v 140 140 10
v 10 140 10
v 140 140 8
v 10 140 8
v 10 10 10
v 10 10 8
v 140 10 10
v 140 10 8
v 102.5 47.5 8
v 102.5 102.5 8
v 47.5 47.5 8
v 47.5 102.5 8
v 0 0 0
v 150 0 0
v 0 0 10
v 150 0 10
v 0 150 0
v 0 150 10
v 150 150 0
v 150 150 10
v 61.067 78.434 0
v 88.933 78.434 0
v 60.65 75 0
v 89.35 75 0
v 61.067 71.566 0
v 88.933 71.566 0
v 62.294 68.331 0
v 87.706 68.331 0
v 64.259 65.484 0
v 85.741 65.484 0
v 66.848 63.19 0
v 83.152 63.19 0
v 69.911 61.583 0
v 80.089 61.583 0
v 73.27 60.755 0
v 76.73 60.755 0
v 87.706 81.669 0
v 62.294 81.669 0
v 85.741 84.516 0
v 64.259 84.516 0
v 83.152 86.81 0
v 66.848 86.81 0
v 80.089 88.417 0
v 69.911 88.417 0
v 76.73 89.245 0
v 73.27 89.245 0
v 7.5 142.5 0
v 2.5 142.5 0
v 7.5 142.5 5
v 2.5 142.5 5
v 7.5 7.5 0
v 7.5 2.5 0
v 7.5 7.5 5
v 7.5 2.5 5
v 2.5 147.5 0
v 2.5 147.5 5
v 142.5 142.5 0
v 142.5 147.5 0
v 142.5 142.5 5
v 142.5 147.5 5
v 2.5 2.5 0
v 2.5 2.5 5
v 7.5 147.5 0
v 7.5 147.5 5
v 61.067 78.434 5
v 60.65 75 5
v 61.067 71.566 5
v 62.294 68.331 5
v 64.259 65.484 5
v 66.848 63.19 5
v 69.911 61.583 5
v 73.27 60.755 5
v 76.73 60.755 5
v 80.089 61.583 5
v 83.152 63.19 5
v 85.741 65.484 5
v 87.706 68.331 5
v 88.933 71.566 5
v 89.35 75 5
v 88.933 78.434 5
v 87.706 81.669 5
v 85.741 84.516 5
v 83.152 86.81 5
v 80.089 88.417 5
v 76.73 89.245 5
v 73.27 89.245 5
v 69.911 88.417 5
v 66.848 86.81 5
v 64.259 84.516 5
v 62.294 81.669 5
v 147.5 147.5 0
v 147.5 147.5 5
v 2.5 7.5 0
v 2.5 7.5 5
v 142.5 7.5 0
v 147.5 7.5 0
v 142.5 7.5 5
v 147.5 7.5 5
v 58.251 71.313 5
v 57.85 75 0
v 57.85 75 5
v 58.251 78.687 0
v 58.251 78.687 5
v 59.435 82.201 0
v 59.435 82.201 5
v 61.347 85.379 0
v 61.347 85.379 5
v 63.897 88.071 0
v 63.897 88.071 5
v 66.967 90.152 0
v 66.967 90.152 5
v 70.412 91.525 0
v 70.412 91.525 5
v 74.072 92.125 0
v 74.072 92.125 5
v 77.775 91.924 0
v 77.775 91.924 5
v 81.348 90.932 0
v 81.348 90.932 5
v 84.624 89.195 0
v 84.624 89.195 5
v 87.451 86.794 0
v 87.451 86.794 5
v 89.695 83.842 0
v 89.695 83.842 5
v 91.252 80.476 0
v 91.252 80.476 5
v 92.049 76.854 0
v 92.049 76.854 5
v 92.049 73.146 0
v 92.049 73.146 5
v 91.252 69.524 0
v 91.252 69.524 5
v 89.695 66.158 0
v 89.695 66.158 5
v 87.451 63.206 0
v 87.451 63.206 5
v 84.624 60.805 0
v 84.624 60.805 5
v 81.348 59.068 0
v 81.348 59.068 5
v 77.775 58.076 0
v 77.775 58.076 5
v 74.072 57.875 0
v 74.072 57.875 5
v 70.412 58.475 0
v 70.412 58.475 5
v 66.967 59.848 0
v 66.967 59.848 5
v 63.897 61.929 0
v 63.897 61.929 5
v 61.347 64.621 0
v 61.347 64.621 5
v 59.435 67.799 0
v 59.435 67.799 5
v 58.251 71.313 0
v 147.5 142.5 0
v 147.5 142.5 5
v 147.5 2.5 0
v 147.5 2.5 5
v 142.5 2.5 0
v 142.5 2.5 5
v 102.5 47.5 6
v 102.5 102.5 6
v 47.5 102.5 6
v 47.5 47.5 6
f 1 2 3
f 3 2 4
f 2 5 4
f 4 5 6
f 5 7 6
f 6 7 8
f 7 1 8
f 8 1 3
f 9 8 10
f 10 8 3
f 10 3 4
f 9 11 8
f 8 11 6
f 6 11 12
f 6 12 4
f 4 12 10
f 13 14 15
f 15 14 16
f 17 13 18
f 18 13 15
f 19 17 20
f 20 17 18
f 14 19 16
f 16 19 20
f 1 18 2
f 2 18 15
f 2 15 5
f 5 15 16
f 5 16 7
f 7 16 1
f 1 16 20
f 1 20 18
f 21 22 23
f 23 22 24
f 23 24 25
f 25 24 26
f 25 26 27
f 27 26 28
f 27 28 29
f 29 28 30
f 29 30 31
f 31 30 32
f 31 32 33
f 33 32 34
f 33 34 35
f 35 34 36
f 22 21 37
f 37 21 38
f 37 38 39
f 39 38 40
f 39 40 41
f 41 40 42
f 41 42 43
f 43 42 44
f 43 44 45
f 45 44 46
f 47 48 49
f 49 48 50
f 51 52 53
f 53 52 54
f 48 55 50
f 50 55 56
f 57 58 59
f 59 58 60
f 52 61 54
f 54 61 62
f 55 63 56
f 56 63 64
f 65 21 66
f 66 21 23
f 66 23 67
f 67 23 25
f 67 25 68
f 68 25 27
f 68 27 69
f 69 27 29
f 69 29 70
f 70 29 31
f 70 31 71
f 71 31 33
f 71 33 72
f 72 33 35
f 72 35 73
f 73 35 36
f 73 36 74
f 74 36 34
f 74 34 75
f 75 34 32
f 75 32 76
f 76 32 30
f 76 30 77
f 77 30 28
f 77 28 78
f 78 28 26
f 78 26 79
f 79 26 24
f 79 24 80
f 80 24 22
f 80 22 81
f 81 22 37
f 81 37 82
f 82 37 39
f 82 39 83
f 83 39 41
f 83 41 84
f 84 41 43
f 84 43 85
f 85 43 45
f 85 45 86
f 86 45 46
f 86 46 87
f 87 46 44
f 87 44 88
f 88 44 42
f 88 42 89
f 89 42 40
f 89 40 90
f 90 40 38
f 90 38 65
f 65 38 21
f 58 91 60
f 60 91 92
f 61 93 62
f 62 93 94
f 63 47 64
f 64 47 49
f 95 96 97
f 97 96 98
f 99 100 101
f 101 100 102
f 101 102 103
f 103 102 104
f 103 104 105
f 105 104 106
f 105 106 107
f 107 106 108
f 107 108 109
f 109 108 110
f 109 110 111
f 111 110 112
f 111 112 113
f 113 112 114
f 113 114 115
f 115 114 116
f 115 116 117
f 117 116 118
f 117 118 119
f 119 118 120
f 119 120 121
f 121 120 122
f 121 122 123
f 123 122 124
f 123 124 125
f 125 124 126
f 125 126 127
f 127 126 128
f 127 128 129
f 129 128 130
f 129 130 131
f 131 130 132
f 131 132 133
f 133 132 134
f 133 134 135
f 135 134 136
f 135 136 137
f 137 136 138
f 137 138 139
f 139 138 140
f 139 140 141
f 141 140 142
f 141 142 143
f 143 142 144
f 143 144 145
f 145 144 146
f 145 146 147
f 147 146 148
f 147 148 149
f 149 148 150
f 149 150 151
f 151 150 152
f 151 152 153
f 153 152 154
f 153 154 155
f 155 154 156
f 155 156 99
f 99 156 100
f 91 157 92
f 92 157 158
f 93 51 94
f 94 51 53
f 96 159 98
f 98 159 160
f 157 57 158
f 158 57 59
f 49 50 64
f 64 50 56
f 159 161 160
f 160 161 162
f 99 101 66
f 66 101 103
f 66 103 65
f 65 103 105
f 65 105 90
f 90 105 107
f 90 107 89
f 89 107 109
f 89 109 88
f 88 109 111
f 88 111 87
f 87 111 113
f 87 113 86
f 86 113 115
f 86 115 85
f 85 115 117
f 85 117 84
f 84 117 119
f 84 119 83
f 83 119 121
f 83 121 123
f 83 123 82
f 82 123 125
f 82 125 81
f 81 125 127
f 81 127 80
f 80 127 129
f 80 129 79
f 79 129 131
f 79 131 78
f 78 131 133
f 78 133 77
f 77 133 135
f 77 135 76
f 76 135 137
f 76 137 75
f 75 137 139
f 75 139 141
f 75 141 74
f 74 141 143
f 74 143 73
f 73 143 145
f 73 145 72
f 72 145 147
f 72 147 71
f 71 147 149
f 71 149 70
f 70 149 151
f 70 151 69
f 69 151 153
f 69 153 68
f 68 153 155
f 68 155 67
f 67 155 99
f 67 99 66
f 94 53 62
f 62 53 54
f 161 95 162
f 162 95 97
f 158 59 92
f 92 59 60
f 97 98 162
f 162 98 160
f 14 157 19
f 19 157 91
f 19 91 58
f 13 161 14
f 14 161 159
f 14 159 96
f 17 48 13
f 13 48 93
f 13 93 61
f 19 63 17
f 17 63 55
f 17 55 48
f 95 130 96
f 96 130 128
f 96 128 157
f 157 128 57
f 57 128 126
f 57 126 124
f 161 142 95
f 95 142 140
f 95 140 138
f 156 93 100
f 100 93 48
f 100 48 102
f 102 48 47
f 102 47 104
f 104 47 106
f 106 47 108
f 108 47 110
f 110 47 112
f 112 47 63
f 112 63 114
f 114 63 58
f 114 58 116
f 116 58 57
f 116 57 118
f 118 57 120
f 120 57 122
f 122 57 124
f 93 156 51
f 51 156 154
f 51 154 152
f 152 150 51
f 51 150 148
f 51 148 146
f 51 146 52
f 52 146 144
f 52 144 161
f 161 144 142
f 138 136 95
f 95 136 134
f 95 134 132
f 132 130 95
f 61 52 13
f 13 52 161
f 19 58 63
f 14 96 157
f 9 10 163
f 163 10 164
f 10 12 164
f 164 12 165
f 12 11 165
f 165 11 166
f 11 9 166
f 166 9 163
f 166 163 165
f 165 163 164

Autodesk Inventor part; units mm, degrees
ref_plane "YZ Plane" through (0, 0, 0) normal (1, 0, 0) x (0, 1, 0)
ref_plane "XZ Plane" through (0, 0, 0) normal (0, 1, 0) x (-1, 0, 0)
ref_plane "XY Plane" through (0, 0, 0) normal (0, 0, 1) x (1, 0, 0)
sketch "Sketch4" plane through (0, 0, 0) normal (0, 0, 1) x (1, 0, 0)
  line L0 (0, 0) -> (150, 0)
  line L1 (150, 0) -> (150, 150)
  line L2 (150, 150) -> (0, 150)
  line L3 (0, 150) -> (0, 0)
  dimension "d34" = 150
  dimension "d35" = 150
extrude "Extrusion4" add sketch "Sketch4" along normal blind 10
sketch "Sketch5" plane through (0, 0, 10) normal (0, 0, 1) x (1, 0, 0)
  line L0 (10, 10) -> (140, 10)
  line L1 (140, 10) -> (140, 140)
  line L2 (140, 140) -> (10, 140)
  line L3 (10, 140) -> (10, 10)
  point P0 (0, 0)
  dimension "d38" = 130
  dimension "d39" = 130
extrude "Extrusion5" cut sketch "Sketch5" against normal blind 2
sketch "Sketch6" plane through (0, 0, 0) normal (0, 0, -1) x (-1, 0, 0)
  circle A0 centre (-75, 75) radius 14.35
  circle A1 centre (-75, 75) radius 17.15
  line L0 (-147.5, 2.5) -> (-142.5, 2.5)
  line L1 (-142.5, 2.5) -> (-142.5, 7.5)
  line L2 (-142.5, 7.5) -> (-147.5, 7.5)
  line L3 (-147.5, 7.5) -> (-147.5, 2.5)
  line L4 (-2.5, 2.5) -> (-7.5, 2.5)
  line L5 (-7.5, 2.5) -> (-7.5, 7.5)
  line L6 (-7.5, 7.5) -> (-2.5, 7.5)
  line L7 (-2.5, 7.5) -> (-2.5, 2.5)
  line L8 (-147.5, 147.5) -> (-142.5, 147.5)
  line L9 (-142.5, 147.5) -> (-142.5, 142.5)
  line L10 (-142.5, 142.5) -> (-147.5, 142.5)
  line L11 (-147.5, 142.5) -> (-147.5, 147.5)
  line L12 (-2.5, 147.5) -> (-7.5, 147.5)
  line L13 (-7.5, 147.5) -> (-7.5, 142.5)
  line L14 (-7.5, 142.5) -> (-2.5, 142.5)
  line L15 (-2.5, 142.5) -> (-2.5, 147.5)
  point P0 (0, 0)
  dimension "d42" = 28.7
  dimension "d43" = 34.3
  dimension "d46" = 5
  dimension "d47" = 5
  dimension "d48" = 5
  dimension "d49" = 5
  dimension "d50" = 5
  dimension "d51" = 5
  dimension "d52" = 5
  dimension "d53" = 5
extrude "Extrusion7" cut sketch "Sketch6" against normal blind 5
sketch "Sketch7" plane through (0, 0, 8) normal (0, 0, 1) x (1, 0, 0)
  line L0 (47.5, 102.5) -> (102.5, 102.5)
  line L1 (102.5, 102.5) -> (102.5, 47.5)
  line L2 (102.5, 47.5) -> (47.5, 47.5)
  line L3 (47.5, 47.5) -> (47.5, 102.5)
  point P0 (0, 0)
  dimension "d58" = 55
  dimension "d59" = 55
extrude "Extrusion8" cut sketch "Sketch7" against normal blind 2
properties part number "Elbow_Parallel_Joint"
